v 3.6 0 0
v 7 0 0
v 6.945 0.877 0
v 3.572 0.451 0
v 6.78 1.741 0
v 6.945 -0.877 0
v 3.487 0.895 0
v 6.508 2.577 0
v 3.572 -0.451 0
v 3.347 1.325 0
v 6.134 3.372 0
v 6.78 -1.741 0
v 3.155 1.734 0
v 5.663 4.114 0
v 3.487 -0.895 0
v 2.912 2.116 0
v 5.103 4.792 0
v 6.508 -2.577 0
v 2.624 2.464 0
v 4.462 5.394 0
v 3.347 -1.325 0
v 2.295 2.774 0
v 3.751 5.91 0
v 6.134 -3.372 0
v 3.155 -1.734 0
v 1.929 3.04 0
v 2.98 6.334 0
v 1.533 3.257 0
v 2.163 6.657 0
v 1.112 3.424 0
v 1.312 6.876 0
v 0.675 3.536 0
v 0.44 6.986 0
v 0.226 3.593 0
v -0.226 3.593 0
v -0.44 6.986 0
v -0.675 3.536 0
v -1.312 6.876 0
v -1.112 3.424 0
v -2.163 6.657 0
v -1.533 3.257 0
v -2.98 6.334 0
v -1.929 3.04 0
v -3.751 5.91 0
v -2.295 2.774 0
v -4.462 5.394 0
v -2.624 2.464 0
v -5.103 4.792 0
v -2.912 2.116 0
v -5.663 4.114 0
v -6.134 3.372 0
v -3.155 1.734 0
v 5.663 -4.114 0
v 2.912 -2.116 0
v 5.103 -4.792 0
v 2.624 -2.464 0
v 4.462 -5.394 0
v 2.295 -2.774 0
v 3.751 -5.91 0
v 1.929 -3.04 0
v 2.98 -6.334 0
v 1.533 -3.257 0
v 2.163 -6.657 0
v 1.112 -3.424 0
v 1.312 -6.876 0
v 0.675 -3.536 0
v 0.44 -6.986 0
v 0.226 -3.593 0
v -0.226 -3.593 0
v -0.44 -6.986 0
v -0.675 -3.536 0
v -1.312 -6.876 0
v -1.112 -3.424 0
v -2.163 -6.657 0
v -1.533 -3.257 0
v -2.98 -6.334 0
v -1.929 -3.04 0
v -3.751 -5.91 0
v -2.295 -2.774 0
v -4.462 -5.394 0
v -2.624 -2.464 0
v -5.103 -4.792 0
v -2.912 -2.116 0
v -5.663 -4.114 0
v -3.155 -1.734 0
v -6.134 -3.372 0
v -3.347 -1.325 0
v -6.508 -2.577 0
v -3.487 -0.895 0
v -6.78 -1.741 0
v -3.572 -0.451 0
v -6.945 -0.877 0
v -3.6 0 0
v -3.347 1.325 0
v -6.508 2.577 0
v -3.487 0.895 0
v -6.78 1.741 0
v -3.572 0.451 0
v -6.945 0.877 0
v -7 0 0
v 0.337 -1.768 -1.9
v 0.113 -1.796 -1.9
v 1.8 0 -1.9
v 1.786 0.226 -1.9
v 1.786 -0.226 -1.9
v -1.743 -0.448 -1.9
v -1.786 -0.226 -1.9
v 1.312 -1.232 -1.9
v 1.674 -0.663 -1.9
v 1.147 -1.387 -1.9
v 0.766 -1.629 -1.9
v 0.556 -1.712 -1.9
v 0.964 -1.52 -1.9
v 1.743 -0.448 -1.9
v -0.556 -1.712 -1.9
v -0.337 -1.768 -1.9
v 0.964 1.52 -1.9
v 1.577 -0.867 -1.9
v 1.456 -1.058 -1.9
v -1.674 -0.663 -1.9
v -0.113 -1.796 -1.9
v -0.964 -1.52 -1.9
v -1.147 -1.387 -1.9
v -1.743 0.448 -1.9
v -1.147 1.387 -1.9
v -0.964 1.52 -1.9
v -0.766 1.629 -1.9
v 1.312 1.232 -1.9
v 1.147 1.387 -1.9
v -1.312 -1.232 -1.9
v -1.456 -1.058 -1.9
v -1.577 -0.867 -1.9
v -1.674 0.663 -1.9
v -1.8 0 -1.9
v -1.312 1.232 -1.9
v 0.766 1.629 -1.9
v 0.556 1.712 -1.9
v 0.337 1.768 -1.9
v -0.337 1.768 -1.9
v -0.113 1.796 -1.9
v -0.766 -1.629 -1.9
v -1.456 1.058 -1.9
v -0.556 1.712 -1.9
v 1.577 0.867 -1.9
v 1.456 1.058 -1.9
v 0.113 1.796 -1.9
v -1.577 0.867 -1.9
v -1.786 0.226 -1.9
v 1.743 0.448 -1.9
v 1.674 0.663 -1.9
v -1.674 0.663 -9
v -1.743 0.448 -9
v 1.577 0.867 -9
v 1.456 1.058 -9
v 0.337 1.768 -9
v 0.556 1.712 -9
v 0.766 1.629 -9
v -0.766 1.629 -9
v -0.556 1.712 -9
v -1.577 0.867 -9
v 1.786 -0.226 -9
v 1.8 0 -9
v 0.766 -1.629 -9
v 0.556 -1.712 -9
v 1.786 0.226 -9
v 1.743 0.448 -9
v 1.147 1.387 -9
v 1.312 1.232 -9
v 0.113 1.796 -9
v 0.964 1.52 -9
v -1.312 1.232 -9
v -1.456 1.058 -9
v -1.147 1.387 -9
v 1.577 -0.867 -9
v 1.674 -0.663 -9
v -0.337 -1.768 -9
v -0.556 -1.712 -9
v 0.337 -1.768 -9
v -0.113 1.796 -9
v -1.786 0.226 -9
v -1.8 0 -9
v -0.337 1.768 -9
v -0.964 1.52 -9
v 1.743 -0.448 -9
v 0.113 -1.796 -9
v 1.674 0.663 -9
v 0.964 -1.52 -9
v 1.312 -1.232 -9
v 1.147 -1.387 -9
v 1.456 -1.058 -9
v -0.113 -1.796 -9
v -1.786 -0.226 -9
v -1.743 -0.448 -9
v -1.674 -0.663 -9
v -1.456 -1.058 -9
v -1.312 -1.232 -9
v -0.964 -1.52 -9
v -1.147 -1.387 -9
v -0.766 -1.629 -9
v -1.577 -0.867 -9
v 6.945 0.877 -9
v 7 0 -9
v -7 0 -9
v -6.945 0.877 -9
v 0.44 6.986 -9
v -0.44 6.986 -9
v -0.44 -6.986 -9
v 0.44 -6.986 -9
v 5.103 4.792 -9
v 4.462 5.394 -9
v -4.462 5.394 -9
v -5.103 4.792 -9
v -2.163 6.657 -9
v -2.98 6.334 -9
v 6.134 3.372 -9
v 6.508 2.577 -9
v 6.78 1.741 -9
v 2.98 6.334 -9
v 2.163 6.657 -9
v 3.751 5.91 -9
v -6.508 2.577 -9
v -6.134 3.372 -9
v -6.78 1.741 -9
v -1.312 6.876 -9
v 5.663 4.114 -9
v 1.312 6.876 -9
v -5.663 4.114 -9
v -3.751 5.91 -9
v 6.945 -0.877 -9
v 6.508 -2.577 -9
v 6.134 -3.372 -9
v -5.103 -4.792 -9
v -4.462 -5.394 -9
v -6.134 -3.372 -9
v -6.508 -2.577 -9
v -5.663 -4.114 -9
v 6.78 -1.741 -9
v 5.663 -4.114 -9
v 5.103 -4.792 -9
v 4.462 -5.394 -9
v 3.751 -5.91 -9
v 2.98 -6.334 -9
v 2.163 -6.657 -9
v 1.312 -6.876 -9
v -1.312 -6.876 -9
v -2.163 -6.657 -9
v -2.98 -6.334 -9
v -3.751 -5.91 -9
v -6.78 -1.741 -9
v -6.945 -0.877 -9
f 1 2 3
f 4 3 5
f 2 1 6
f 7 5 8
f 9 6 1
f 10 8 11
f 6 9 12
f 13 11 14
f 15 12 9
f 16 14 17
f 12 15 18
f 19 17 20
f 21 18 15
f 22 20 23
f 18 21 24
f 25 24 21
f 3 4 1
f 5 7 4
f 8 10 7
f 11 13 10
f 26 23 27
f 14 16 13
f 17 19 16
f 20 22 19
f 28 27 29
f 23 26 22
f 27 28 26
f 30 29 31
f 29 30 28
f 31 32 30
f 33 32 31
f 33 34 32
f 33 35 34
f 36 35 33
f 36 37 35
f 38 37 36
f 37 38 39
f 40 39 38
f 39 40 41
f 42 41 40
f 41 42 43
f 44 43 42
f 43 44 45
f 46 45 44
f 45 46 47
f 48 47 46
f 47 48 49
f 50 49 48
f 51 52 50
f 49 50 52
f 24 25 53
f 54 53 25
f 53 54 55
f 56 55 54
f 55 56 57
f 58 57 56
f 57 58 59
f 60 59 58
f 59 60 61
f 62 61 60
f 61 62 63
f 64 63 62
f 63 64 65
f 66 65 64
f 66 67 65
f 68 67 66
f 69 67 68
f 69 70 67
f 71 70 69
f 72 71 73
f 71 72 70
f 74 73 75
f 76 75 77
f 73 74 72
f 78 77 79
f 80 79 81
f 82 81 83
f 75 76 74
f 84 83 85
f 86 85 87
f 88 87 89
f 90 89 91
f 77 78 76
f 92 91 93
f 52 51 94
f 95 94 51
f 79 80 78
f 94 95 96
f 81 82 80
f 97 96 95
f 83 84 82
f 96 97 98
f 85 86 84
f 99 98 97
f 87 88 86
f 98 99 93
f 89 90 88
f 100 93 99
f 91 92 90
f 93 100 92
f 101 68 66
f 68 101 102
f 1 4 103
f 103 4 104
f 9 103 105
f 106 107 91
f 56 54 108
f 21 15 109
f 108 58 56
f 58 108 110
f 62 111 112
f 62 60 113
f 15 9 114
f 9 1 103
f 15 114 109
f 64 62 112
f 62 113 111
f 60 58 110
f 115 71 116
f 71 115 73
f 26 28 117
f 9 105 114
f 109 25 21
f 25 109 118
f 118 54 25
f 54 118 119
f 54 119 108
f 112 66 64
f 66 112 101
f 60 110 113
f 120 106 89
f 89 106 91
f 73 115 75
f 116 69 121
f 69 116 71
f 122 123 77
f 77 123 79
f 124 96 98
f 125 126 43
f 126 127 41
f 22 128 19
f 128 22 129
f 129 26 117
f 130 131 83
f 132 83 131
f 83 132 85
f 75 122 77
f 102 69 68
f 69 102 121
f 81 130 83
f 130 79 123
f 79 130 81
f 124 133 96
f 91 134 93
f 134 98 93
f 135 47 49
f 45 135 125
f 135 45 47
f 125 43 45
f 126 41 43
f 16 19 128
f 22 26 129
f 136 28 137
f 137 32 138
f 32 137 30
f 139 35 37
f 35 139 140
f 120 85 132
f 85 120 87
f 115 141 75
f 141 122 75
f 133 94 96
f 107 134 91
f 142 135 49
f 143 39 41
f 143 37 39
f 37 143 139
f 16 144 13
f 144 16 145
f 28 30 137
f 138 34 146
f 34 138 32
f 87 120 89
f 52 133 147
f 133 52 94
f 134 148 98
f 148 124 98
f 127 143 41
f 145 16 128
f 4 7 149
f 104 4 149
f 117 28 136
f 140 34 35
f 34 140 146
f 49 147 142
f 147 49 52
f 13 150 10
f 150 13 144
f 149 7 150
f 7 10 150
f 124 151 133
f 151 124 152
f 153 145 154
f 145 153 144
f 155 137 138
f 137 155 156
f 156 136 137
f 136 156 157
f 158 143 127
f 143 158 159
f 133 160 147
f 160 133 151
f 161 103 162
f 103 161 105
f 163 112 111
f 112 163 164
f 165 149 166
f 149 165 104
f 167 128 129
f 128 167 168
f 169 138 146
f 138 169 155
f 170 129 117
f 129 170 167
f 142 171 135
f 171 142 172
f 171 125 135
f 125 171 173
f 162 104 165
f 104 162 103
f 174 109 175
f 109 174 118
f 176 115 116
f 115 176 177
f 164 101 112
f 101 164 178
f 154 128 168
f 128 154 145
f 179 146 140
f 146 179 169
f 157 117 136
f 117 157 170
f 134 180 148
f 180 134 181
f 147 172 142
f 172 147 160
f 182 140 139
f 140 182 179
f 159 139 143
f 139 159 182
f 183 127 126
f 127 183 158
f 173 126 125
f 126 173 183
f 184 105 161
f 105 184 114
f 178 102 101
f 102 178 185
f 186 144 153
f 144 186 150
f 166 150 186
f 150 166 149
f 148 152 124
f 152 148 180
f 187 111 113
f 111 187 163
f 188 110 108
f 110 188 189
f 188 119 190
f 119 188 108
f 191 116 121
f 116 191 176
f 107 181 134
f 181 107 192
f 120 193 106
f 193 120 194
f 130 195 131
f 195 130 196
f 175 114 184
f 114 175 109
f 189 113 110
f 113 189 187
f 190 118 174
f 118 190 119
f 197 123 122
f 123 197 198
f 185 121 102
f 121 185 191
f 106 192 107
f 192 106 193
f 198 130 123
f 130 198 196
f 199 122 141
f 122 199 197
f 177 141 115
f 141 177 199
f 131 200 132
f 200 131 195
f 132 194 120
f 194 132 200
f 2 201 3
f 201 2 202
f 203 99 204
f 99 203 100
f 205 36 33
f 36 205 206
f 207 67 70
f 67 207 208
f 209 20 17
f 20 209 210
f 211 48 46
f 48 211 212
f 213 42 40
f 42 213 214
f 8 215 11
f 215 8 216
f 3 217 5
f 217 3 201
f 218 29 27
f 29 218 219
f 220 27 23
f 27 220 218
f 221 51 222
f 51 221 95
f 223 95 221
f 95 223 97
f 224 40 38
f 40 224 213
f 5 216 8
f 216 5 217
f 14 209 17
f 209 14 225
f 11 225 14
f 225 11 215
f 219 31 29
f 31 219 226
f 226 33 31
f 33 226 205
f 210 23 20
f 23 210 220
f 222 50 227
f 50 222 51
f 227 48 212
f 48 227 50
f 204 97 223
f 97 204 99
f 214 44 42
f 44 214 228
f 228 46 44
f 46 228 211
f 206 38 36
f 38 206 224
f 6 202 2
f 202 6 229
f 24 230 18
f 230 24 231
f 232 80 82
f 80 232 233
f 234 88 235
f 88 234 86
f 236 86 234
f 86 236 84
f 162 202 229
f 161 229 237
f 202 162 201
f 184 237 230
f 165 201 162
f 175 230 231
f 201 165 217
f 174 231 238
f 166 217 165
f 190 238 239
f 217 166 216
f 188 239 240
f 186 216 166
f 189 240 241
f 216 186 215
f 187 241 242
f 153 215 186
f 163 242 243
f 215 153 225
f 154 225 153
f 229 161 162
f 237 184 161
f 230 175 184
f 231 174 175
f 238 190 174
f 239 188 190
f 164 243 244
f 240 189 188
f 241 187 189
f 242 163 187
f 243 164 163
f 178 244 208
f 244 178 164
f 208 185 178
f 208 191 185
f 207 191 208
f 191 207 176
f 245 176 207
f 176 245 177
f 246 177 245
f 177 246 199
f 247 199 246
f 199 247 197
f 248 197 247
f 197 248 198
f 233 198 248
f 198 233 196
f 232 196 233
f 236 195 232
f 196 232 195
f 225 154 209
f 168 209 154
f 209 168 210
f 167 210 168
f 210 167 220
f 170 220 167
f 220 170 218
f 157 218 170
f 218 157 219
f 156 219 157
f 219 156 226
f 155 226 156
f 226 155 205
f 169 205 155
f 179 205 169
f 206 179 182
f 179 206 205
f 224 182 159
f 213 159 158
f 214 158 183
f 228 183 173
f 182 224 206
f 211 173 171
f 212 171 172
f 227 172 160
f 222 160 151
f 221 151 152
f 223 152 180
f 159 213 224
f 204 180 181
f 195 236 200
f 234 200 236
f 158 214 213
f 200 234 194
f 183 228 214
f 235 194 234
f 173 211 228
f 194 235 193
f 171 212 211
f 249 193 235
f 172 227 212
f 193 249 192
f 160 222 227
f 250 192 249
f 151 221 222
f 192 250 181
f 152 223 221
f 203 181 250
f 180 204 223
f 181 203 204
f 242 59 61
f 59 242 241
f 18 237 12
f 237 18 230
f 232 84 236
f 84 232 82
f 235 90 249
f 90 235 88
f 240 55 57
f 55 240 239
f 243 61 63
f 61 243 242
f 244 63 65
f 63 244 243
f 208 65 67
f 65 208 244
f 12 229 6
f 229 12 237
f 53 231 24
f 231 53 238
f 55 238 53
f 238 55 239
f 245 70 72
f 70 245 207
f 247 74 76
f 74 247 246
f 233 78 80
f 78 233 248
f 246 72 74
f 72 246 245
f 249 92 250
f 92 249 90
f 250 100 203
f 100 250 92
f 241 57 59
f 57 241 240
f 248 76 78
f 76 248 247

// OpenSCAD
$fn = 50;


difference() {
	union() {
		translate(v = [0, 0, -9.0000000000]) {
			cylinder(h = 9, r = 7.0000000000);
		}
	}
	union() {
		translate(v = [0, 0, 0]) {
			rotate(a = [0, 0, 0]) {
				difference() {
					union() {
						translate(v = [0, 0, -12.0000000000]) {
							cylinder(h = 12, r = 1.5000000000);
						}
						translate(v = [0, 0, -1.9000000000]) {
							cylinder(h = 1.9000000000, r1 = 1.8000000000, r2 = 3.6000000000);
						}
						translate(v = [0, 0, -12.0000000000]) {
							cylinder(h = 12, r = 1.8000000000);
						}
						translate(v = [0, 0, -12.0000000000]) {
							cylinder(h = 12, r = 1.5000000000);
						}
					}
					union();
				}
			}
		}
	}
}
